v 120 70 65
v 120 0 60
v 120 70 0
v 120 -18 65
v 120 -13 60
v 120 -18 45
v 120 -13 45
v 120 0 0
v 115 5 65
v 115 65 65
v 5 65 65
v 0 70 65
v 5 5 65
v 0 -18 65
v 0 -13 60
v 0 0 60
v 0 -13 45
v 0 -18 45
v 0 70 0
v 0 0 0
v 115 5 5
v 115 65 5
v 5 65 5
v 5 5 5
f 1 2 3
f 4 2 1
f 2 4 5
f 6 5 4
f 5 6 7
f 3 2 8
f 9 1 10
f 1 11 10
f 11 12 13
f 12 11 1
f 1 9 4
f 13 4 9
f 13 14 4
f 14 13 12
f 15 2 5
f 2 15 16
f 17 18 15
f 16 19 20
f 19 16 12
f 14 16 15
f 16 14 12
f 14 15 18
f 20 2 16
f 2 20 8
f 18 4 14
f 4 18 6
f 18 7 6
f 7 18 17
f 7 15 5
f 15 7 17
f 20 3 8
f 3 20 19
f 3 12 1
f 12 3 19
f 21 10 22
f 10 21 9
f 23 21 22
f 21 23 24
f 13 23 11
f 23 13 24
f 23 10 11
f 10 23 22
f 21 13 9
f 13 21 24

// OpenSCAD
// outside x [mm]
width = 120;  // [10:0.1:180]
// outside y [mm]
length = 70; // [10:0.1:180]
// outside z [mm]
height = 65; // [10:0.1:180]

// wall thickness [mm]
wall = 5; // [1:0.1:5]

module hook()
{
    hook_width = width;
    hook_length = 18;
    hook_height = 5;
    translate([0, -hook_length, height - hook_height])
        cube([hook_width, hook_length, hook_height]);

    hook2_length = 20;
    translate([0, -hook_length, height - hook2_length])
        cube([hook_width, hook_height, hook2_length]);
}

module model()
{
    hook();
    difference() {
        cube([width, length, height]);
        translate([wall, wall, wall])
            cube([width - wall * 2, length - wall * 2, height - wall]);
    }
}

model();
